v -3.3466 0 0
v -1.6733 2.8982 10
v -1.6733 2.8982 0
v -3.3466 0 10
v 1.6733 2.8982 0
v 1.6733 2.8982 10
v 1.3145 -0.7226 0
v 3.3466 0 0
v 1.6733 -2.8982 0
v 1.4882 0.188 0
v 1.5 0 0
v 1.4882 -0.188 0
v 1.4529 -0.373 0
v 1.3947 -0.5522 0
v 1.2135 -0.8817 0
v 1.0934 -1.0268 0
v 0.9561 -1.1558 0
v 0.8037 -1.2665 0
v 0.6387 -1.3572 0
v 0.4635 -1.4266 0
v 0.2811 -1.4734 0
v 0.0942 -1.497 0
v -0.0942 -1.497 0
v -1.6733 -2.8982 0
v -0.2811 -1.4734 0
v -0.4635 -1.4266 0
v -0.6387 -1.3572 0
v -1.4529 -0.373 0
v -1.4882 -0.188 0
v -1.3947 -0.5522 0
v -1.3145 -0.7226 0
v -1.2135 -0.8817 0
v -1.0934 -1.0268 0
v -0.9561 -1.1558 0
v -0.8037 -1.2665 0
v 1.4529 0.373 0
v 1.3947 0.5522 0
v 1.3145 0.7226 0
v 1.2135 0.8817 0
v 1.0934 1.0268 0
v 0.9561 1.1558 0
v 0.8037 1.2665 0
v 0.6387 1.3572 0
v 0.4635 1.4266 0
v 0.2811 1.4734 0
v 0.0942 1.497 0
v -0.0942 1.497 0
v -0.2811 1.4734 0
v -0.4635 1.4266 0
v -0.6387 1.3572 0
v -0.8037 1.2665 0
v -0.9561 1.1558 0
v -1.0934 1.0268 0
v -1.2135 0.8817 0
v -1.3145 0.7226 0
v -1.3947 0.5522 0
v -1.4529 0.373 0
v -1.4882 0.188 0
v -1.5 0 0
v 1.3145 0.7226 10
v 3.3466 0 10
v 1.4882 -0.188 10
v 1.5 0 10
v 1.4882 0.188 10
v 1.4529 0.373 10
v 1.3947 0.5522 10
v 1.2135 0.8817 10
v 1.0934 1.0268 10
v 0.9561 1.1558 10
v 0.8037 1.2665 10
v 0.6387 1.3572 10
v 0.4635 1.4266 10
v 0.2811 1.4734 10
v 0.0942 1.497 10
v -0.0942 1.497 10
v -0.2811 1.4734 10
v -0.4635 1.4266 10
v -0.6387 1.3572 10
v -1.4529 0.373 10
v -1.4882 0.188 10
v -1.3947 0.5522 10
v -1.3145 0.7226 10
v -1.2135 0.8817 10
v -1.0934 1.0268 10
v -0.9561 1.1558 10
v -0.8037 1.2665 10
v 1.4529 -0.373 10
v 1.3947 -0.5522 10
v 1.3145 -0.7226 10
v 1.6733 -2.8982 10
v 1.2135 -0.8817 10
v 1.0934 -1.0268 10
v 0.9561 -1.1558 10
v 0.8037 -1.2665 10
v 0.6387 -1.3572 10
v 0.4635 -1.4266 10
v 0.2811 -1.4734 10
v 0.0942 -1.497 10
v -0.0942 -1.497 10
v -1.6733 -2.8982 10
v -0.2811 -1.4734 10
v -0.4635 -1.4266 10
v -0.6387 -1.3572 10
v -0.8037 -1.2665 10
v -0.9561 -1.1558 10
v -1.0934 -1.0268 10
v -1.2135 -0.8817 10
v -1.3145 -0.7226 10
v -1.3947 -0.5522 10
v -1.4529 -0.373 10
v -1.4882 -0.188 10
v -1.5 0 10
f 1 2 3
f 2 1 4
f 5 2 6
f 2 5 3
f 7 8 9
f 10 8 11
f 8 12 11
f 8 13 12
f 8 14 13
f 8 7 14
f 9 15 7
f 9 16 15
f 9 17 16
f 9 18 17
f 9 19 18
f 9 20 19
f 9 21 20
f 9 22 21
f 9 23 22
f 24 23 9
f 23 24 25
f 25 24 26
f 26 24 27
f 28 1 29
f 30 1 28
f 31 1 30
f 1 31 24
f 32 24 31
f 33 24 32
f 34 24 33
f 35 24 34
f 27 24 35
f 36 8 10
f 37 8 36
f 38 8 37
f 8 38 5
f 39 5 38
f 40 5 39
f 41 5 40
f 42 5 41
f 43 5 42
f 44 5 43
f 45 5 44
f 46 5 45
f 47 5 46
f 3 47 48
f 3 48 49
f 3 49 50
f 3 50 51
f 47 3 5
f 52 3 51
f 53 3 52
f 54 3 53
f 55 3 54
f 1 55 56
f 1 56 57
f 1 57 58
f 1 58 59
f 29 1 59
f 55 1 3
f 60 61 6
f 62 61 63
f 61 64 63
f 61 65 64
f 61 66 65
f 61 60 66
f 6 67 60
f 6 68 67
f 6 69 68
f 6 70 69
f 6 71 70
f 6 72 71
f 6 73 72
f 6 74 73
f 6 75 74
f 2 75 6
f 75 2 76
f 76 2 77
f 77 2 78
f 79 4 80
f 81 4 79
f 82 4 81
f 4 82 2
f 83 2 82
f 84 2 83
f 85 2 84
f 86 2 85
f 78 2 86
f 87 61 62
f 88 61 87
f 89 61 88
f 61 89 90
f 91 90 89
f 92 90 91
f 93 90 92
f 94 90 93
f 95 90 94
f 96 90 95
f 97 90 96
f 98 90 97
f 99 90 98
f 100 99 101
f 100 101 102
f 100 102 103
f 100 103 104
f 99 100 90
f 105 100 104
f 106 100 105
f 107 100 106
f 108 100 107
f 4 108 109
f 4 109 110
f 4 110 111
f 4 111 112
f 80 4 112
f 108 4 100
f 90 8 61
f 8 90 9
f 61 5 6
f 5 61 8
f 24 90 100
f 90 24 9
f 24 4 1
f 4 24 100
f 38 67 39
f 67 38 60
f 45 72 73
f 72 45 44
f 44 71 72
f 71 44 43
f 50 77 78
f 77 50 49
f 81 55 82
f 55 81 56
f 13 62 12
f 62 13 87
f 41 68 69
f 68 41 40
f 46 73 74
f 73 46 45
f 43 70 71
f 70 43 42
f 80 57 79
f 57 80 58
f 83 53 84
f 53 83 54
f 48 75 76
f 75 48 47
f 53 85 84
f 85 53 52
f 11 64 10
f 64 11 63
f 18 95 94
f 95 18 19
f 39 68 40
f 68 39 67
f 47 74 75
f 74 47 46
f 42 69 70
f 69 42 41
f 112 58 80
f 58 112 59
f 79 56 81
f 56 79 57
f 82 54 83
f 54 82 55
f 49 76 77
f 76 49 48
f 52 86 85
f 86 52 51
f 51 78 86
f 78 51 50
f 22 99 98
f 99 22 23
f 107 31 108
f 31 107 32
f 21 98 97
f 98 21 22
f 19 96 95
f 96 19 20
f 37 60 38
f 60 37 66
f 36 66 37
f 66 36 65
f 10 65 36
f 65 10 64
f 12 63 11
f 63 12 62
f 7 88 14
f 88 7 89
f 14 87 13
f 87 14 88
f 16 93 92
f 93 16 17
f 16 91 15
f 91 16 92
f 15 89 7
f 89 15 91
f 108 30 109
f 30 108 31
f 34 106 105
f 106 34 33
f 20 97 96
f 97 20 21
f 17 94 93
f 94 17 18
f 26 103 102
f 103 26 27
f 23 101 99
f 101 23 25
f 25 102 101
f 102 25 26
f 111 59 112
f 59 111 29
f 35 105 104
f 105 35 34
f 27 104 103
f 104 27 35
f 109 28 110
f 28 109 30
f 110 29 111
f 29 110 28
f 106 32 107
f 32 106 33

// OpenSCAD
$fn = 50;


difference() {
	union() {
		translate(v = [0, 0, 0]) {
			rotate(a = [0, 0, 0]) {
				translate(v = [0, 0, 0]) {
					rotate(a = [0, 0, 0]) {
						linear_extrude(height = 10) {
							polygon(points = [[3.3466000000, 0.0000000000], [1.6733000000, 2.8982406163], [-1.6733000000, 2.8982406163], [-3.3466000000, 0.0000000000], [-1.6733000000, -2.8982406163], [1.6733000000, -2.8982406163]]);
						}
					}
				}
			}
		}
	}
	union() {
		translate(v = [0, 0, 0]) {
			rotate(a = [0, 0, 0]) {
				cylinder(h = 10, r = 1.5000000000);
			}
		}
	}
}
